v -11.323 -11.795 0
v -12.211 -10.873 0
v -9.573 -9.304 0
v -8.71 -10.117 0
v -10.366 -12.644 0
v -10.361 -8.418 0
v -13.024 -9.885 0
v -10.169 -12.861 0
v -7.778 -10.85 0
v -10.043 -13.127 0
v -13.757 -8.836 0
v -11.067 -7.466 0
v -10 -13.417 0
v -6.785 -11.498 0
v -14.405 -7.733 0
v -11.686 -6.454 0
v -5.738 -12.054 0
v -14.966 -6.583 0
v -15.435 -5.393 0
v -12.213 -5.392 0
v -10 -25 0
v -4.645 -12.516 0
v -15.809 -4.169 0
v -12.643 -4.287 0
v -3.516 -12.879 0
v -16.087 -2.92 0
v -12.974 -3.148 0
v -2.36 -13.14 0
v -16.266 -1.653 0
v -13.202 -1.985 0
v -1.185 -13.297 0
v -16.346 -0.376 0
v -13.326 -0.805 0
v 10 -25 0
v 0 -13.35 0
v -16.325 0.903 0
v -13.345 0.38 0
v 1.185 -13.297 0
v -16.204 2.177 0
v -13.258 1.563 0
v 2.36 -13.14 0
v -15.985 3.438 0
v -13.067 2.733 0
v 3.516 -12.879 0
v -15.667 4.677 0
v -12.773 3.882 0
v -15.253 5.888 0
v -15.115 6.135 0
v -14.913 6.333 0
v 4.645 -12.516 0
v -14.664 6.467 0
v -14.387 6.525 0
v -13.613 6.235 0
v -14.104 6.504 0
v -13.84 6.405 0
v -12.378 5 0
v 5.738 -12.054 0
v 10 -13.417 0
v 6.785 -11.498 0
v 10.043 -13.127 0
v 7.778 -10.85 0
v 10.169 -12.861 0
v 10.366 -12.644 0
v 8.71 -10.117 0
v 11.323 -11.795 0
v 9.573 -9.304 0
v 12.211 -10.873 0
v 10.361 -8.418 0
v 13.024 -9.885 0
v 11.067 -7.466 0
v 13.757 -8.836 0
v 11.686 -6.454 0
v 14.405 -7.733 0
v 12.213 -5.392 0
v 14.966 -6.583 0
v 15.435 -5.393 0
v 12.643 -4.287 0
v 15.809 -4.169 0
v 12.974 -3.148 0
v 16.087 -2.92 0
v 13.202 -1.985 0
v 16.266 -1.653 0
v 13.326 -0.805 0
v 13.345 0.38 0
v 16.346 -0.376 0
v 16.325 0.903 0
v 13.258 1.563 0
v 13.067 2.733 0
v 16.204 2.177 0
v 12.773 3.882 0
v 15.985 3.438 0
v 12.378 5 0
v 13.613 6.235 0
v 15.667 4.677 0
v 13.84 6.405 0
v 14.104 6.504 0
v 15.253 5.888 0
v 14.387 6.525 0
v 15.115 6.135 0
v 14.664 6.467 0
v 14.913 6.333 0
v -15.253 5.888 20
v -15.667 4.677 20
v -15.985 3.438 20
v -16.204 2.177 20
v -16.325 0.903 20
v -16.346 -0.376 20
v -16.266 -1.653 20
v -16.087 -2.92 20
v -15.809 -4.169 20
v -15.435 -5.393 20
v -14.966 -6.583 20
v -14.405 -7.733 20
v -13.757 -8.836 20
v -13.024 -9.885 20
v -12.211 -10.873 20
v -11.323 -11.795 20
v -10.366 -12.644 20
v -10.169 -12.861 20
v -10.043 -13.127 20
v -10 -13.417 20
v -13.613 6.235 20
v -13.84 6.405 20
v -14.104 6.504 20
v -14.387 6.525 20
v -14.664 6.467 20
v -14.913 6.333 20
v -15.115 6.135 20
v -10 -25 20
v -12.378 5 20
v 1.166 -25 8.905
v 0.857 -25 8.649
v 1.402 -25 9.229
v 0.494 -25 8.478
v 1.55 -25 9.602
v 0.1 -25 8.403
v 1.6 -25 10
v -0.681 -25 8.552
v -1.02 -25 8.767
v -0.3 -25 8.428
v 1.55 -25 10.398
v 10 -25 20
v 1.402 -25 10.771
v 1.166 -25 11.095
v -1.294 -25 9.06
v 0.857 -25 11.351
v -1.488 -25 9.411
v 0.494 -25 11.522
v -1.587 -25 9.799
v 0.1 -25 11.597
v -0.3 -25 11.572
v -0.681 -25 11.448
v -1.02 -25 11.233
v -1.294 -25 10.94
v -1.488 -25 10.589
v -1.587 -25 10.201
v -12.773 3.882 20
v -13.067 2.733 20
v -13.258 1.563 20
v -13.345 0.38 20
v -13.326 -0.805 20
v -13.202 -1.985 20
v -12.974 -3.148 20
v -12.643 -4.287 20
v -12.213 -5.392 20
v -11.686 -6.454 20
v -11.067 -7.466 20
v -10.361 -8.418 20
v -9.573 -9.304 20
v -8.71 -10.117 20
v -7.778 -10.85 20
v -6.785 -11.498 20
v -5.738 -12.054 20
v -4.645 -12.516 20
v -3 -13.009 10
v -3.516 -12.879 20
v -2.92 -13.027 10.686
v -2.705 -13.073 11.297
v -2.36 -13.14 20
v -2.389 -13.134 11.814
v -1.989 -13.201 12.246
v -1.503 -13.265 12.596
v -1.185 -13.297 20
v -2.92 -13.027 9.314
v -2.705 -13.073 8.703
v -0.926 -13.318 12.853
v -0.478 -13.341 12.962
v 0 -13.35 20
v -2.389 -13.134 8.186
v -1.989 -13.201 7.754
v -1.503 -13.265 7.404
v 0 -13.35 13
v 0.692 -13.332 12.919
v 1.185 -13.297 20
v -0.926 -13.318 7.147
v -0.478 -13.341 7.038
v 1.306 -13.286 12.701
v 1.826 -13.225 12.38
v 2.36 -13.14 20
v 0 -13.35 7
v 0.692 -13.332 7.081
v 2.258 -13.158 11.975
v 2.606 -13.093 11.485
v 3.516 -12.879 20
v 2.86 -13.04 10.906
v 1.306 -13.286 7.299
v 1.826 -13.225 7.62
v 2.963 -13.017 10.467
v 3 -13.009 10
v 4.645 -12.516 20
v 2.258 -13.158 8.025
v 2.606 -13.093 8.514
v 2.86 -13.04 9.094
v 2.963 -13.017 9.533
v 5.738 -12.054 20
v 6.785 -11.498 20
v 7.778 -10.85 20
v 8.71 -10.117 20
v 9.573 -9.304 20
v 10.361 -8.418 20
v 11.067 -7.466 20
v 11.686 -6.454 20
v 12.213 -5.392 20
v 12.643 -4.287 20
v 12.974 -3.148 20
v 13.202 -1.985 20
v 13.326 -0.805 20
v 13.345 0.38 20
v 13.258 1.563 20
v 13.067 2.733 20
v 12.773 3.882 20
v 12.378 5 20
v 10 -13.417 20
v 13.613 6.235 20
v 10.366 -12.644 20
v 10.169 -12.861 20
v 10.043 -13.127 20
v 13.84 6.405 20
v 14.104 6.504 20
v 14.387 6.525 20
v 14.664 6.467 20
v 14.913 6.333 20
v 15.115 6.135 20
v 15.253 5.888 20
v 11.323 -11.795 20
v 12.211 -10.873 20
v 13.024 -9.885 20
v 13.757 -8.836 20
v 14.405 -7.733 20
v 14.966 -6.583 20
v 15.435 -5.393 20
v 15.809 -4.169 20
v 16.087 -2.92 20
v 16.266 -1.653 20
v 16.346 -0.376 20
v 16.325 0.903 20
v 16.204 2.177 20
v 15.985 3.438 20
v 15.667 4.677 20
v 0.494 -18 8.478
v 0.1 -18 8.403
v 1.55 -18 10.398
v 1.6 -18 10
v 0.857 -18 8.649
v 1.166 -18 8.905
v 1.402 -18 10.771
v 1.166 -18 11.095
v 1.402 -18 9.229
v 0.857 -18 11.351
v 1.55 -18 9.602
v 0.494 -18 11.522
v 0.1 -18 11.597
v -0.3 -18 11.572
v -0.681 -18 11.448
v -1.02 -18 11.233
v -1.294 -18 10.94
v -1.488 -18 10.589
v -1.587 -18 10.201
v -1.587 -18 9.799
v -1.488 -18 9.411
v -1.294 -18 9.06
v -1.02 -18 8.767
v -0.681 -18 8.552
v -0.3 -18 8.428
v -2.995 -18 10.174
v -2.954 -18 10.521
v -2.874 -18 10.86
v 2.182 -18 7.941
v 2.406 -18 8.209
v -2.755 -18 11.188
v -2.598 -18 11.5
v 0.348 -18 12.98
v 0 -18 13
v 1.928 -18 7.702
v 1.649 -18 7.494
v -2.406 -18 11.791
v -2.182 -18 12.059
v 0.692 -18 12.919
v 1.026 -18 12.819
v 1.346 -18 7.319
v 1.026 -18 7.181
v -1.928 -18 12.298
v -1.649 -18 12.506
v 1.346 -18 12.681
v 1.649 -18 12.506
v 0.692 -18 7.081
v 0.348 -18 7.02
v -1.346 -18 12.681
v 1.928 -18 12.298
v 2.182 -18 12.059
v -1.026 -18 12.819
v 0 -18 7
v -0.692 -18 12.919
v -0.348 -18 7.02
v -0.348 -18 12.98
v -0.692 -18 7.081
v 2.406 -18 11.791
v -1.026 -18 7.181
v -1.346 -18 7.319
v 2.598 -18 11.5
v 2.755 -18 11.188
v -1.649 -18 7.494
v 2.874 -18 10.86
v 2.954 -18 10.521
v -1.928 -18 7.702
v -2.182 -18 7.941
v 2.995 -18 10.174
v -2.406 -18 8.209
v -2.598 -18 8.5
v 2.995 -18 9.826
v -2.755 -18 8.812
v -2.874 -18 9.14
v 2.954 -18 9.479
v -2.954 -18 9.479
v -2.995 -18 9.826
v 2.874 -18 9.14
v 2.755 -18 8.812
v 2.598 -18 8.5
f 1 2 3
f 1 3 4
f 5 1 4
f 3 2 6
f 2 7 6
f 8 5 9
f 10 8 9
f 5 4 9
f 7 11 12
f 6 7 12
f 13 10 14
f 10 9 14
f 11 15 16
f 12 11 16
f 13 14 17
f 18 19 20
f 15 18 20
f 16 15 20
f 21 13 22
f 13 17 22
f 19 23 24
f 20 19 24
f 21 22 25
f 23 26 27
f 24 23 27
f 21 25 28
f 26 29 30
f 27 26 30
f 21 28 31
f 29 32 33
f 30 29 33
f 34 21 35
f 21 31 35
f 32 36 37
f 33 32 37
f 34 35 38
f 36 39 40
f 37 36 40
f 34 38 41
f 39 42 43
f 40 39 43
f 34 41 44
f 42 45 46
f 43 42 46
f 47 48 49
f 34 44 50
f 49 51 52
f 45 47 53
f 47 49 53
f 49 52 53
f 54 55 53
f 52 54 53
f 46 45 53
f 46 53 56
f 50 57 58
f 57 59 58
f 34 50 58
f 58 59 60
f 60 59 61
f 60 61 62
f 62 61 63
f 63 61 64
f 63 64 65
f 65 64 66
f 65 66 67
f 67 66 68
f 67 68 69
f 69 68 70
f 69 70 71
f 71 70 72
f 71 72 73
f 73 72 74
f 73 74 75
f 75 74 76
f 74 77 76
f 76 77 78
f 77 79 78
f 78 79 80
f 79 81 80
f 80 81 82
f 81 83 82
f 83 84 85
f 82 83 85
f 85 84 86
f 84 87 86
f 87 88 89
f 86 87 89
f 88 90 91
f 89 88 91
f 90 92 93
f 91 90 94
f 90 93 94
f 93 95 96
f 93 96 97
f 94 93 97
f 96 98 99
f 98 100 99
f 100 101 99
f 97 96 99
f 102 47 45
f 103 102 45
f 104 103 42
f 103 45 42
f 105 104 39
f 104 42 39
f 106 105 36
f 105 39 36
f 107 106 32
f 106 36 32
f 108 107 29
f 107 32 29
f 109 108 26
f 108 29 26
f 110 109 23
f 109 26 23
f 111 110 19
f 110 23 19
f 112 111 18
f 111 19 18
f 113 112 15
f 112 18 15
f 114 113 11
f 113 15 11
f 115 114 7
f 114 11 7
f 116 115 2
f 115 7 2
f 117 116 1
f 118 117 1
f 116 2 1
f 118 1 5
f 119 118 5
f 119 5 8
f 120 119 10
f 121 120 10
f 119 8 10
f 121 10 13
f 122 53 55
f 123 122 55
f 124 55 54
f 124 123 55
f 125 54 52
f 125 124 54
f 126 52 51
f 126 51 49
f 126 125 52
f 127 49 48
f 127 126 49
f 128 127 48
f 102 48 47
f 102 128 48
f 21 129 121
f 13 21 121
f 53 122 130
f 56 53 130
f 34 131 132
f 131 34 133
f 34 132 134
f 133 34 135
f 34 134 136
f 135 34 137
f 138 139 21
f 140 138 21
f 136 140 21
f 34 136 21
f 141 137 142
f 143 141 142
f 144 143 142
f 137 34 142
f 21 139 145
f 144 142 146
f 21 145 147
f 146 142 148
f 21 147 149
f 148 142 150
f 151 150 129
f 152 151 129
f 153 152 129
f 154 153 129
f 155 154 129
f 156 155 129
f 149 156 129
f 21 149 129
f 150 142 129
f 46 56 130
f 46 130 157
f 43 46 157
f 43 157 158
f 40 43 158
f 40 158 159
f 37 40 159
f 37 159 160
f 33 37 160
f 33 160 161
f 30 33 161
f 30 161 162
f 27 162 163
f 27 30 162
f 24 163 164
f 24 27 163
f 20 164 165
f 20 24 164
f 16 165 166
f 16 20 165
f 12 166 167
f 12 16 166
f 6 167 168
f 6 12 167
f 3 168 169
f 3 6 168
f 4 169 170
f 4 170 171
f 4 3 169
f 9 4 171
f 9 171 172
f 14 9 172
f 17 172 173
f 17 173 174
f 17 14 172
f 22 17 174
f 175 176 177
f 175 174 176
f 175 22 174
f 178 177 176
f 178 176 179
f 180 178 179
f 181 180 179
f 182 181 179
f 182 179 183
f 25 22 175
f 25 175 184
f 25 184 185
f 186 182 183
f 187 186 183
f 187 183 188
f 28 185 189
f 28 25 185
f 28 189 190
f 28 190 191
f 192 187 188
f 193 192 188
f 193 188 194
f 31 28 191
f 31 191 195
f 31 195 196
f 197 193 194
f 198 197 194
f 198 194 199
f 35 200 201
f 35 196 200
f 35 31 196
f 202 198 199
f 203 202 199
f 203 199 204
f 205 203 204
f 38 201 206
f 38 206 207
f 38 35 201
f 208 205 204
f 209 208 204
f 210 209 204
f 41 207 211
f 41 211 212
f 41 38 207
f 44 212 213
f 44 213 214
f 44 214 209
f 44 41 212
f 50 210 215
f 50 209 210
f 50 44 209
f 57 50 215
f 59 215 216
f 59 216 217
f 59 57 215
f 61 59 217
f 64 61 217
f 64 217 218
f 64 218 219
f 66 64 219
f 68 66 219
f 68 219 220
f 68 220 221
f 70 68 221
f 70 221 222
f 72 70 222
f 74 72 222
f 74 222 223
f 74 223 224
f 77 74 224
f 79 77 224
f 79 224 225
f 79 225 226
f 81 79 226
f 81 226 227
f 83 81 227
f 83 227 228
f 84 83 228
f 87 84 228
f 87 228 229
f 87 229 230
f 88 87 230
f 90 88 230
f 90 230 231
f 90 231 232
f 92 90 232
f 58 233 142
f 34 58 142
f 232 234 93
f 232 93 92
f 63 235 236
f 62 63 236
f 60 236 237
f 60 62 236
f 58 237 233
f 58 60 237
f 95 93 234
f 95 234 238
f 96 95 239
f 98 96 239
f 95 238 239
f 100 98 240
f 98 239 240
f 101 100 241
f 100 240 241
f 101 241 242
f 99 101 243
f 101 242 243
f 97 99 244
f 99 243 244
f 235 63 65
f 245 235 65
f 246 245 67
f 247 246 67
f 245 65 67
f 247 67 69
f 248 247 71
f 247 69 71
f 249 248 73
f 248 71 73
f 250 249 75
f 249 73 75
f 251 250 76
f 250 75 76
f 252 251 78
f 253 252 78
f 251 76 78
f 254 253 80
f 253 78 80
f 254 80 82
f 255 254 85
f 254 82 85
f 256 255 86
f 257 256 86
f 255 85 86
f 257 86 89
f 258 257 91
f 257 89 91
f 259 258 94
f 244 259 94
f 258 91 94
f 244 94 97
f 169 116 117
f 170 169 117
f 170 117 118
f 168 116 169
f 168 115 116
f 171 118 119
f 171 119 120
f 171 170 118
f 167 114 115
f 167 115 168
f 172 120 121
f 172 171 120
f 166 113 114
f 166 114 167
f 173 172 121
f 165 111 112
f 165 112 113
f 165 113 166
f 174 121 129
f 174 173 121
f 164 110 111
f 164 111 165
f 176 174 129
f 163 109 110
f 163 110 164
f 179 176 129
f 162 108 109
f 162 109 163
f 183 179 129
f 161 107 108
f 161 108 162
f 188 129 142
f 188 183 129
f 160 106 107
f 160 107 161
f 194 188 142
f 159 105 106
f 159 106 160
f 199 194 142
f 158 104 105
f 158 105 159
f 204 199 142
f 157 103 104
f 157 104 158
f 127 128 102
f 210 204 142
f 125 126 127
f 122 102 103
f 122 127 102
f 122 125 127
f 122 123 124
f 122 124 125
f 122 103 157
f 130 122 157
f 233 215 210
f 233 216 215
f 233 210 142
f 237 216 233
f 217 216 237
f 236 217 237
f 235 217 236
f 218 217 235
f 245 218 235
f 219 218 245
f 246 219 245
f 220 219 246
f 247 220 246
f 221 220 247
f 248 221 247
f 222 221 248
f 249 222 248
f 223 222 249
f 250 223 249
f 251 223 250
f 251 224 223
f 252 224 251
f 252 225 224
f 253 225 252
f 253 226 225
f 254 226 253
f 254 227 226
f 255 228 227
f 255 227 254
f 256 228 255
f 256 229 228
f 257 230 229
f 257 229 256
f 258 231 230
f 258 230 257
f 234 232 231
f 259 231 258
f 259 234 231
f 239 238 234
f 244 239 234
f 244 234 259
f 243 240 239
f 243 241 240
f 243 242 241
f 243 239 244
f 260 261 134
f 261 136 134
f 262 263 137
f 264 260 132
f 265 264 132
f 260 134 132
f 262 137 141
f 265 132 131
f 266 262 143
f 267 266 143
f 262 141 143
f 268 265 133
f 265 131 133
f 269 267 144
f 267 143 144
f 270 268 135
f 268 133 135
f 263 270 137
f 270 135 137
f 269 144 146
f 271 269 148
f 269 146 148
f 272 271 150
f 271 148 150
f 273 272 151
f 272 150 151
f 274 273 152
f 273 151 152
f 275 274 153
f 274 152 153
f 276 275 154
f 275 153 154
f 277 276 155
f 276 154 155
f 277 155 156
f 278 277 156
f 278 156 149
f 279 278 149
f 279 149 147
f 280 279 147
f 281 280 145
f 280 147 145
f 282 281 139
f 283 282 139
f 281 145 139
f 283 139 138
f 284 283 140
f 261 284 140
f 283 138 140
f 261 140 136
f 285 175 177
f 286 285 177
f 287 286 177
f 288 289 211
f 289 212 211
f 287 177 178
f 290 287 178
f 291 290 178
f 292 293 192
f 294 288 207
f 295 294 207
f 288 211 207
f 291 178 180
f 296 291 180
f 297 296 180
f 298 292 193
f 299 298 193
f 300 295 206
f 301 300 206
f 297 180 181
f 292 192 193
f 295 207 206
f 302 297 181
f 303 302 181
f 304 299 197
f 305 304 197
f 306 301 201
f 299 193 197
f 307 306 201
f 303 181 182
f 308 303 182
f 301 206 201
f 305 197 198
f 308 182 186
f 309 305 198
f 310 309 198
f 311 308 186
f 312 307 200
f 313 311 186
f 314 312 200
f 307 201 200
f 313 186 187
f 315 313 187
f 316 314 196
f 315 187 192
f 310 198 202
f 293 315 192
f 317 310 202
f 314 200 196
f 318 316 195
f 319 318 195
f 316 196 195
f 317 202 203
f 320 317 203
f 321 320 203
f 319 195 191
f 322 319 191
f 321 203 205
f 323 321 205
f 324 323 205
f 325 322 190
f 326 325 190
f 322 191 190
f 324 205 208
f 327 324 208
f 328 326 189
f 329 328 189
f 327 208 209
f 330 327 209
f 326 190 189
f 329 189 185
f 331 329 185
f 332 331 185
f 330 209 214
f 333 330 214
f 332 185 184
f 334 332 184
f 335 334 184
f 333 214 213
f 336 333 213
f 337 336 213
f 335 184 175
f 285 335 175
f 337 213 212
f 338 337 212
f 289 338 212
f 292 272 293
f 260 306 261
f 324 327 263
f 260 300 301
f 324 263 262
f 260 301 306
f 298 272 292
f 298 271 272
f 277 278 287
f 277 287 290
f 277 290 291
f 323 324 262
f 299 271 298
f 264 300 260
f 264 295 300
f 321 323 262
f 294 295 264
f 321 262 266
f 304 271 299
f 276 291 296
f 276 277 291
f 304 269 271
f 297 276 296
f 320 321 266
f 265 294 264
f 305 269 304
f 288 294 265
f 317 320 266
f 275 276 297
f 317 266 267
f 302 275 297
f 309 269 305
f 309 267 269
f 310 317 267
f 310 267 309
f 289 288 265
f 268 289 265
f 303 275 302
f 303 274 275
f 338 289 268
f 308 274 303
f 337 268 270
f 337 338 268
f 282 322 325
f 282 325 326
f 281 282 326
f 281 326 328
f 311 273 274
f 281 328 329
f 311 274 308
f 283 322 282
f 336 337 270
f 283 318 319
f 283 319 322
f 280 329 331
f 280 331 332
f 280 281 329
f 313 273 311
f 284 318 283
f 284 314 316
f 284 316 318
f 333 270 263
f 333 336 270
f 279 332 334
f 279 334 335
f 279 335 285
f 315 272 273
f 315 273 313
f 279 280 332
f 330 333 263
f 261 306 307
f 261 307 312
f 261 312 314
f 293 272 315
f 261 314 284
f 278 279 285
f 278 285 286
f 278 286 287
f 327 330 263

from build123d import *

# Parameters (mm, degrees)
CYLINDER_R     = 3
CYLINDER_DEPTH = 10
PAD_DEPTH      = 20
PAD001_DEPTH   = 20
SKETCH002_R    = 1.6
POCKET_DEPTH   = 32.268643
FILLET_R       = 1
FILLET001_R    = 1


with BuildPart() as cylinder:
    # Cylinder → Cylinder (new body)
    with BuildSketch(Plane(origin=(0, -18, 10), x_dir=(0, 0, 1), z_dir=(0, 1, 0))):
        Circle(CYLINDER_R)
    extrude(amount=CYLINDER_DEPTH)


with BuildPart() as fillet001:
    # Sketch → Pad (new body)
    with BuildSketch(Plane.XY):
        with BuildLine():
            ThreePointArc((-12.378308, 5), (0, -13.35), (12.378308, 5))
            Line((14.645951, 7.267643), (12.378308, 5))
            ThreePointArc((-14.645951, 7.267643), (0, -16.35), (14.645951, 7.267643))
            Line((-14.645951, 7.267643), (-12.378308, 5))
        make_face()
    extrude(amount=PAD_DEPTH)

    # Sketch001 → Pad001 (new body)
    with BuildSketch(Plane.XY.offset(20)):
        with BuildLine():
            ThreePointArc((-10, -10), (0, -14.142136), (10, -10))
            Line((10, -10), (10, -25))
            Line((10, -25), (-10, -25))
            Line((-10, -25), (-10, -10))
        make_face()
    extrude(amount=-PAD001_DEPTH)

    # Sketch002 → Pocket (cut, through all)
    with BuildSketch(Plane.XZ.offset(25)):
        with Locations((0, 10)):
            Circle(SKETCH002_R)
    extrude(amount=-POCKET_DEPTH, mode=Mode.SUBTRACT)

    # Cut: cut Cylinder
    add(cylinder.part, mode=Mode.SUBTRACT)

    # Fillet
    fillet_edges = [fillet001.edges().sort_by_distance(p)[0] for p in [
        (-14.645951, 7.267643, 10),
        (14.645951, 7.267643, 10),
    ]]
    fillet(fillet_edges, radius=FILLET_R)

    # Fillet001
    fillet001_edges = [fillet001.edges().sort_by_distance(p)[0] for p in [
        (-10, -12.93532, 10),
        (10, -12.93532, 10),
    ]]
    fillet(fillet001_edges, radius=FILLET001_R)


solid = fillet001.part
